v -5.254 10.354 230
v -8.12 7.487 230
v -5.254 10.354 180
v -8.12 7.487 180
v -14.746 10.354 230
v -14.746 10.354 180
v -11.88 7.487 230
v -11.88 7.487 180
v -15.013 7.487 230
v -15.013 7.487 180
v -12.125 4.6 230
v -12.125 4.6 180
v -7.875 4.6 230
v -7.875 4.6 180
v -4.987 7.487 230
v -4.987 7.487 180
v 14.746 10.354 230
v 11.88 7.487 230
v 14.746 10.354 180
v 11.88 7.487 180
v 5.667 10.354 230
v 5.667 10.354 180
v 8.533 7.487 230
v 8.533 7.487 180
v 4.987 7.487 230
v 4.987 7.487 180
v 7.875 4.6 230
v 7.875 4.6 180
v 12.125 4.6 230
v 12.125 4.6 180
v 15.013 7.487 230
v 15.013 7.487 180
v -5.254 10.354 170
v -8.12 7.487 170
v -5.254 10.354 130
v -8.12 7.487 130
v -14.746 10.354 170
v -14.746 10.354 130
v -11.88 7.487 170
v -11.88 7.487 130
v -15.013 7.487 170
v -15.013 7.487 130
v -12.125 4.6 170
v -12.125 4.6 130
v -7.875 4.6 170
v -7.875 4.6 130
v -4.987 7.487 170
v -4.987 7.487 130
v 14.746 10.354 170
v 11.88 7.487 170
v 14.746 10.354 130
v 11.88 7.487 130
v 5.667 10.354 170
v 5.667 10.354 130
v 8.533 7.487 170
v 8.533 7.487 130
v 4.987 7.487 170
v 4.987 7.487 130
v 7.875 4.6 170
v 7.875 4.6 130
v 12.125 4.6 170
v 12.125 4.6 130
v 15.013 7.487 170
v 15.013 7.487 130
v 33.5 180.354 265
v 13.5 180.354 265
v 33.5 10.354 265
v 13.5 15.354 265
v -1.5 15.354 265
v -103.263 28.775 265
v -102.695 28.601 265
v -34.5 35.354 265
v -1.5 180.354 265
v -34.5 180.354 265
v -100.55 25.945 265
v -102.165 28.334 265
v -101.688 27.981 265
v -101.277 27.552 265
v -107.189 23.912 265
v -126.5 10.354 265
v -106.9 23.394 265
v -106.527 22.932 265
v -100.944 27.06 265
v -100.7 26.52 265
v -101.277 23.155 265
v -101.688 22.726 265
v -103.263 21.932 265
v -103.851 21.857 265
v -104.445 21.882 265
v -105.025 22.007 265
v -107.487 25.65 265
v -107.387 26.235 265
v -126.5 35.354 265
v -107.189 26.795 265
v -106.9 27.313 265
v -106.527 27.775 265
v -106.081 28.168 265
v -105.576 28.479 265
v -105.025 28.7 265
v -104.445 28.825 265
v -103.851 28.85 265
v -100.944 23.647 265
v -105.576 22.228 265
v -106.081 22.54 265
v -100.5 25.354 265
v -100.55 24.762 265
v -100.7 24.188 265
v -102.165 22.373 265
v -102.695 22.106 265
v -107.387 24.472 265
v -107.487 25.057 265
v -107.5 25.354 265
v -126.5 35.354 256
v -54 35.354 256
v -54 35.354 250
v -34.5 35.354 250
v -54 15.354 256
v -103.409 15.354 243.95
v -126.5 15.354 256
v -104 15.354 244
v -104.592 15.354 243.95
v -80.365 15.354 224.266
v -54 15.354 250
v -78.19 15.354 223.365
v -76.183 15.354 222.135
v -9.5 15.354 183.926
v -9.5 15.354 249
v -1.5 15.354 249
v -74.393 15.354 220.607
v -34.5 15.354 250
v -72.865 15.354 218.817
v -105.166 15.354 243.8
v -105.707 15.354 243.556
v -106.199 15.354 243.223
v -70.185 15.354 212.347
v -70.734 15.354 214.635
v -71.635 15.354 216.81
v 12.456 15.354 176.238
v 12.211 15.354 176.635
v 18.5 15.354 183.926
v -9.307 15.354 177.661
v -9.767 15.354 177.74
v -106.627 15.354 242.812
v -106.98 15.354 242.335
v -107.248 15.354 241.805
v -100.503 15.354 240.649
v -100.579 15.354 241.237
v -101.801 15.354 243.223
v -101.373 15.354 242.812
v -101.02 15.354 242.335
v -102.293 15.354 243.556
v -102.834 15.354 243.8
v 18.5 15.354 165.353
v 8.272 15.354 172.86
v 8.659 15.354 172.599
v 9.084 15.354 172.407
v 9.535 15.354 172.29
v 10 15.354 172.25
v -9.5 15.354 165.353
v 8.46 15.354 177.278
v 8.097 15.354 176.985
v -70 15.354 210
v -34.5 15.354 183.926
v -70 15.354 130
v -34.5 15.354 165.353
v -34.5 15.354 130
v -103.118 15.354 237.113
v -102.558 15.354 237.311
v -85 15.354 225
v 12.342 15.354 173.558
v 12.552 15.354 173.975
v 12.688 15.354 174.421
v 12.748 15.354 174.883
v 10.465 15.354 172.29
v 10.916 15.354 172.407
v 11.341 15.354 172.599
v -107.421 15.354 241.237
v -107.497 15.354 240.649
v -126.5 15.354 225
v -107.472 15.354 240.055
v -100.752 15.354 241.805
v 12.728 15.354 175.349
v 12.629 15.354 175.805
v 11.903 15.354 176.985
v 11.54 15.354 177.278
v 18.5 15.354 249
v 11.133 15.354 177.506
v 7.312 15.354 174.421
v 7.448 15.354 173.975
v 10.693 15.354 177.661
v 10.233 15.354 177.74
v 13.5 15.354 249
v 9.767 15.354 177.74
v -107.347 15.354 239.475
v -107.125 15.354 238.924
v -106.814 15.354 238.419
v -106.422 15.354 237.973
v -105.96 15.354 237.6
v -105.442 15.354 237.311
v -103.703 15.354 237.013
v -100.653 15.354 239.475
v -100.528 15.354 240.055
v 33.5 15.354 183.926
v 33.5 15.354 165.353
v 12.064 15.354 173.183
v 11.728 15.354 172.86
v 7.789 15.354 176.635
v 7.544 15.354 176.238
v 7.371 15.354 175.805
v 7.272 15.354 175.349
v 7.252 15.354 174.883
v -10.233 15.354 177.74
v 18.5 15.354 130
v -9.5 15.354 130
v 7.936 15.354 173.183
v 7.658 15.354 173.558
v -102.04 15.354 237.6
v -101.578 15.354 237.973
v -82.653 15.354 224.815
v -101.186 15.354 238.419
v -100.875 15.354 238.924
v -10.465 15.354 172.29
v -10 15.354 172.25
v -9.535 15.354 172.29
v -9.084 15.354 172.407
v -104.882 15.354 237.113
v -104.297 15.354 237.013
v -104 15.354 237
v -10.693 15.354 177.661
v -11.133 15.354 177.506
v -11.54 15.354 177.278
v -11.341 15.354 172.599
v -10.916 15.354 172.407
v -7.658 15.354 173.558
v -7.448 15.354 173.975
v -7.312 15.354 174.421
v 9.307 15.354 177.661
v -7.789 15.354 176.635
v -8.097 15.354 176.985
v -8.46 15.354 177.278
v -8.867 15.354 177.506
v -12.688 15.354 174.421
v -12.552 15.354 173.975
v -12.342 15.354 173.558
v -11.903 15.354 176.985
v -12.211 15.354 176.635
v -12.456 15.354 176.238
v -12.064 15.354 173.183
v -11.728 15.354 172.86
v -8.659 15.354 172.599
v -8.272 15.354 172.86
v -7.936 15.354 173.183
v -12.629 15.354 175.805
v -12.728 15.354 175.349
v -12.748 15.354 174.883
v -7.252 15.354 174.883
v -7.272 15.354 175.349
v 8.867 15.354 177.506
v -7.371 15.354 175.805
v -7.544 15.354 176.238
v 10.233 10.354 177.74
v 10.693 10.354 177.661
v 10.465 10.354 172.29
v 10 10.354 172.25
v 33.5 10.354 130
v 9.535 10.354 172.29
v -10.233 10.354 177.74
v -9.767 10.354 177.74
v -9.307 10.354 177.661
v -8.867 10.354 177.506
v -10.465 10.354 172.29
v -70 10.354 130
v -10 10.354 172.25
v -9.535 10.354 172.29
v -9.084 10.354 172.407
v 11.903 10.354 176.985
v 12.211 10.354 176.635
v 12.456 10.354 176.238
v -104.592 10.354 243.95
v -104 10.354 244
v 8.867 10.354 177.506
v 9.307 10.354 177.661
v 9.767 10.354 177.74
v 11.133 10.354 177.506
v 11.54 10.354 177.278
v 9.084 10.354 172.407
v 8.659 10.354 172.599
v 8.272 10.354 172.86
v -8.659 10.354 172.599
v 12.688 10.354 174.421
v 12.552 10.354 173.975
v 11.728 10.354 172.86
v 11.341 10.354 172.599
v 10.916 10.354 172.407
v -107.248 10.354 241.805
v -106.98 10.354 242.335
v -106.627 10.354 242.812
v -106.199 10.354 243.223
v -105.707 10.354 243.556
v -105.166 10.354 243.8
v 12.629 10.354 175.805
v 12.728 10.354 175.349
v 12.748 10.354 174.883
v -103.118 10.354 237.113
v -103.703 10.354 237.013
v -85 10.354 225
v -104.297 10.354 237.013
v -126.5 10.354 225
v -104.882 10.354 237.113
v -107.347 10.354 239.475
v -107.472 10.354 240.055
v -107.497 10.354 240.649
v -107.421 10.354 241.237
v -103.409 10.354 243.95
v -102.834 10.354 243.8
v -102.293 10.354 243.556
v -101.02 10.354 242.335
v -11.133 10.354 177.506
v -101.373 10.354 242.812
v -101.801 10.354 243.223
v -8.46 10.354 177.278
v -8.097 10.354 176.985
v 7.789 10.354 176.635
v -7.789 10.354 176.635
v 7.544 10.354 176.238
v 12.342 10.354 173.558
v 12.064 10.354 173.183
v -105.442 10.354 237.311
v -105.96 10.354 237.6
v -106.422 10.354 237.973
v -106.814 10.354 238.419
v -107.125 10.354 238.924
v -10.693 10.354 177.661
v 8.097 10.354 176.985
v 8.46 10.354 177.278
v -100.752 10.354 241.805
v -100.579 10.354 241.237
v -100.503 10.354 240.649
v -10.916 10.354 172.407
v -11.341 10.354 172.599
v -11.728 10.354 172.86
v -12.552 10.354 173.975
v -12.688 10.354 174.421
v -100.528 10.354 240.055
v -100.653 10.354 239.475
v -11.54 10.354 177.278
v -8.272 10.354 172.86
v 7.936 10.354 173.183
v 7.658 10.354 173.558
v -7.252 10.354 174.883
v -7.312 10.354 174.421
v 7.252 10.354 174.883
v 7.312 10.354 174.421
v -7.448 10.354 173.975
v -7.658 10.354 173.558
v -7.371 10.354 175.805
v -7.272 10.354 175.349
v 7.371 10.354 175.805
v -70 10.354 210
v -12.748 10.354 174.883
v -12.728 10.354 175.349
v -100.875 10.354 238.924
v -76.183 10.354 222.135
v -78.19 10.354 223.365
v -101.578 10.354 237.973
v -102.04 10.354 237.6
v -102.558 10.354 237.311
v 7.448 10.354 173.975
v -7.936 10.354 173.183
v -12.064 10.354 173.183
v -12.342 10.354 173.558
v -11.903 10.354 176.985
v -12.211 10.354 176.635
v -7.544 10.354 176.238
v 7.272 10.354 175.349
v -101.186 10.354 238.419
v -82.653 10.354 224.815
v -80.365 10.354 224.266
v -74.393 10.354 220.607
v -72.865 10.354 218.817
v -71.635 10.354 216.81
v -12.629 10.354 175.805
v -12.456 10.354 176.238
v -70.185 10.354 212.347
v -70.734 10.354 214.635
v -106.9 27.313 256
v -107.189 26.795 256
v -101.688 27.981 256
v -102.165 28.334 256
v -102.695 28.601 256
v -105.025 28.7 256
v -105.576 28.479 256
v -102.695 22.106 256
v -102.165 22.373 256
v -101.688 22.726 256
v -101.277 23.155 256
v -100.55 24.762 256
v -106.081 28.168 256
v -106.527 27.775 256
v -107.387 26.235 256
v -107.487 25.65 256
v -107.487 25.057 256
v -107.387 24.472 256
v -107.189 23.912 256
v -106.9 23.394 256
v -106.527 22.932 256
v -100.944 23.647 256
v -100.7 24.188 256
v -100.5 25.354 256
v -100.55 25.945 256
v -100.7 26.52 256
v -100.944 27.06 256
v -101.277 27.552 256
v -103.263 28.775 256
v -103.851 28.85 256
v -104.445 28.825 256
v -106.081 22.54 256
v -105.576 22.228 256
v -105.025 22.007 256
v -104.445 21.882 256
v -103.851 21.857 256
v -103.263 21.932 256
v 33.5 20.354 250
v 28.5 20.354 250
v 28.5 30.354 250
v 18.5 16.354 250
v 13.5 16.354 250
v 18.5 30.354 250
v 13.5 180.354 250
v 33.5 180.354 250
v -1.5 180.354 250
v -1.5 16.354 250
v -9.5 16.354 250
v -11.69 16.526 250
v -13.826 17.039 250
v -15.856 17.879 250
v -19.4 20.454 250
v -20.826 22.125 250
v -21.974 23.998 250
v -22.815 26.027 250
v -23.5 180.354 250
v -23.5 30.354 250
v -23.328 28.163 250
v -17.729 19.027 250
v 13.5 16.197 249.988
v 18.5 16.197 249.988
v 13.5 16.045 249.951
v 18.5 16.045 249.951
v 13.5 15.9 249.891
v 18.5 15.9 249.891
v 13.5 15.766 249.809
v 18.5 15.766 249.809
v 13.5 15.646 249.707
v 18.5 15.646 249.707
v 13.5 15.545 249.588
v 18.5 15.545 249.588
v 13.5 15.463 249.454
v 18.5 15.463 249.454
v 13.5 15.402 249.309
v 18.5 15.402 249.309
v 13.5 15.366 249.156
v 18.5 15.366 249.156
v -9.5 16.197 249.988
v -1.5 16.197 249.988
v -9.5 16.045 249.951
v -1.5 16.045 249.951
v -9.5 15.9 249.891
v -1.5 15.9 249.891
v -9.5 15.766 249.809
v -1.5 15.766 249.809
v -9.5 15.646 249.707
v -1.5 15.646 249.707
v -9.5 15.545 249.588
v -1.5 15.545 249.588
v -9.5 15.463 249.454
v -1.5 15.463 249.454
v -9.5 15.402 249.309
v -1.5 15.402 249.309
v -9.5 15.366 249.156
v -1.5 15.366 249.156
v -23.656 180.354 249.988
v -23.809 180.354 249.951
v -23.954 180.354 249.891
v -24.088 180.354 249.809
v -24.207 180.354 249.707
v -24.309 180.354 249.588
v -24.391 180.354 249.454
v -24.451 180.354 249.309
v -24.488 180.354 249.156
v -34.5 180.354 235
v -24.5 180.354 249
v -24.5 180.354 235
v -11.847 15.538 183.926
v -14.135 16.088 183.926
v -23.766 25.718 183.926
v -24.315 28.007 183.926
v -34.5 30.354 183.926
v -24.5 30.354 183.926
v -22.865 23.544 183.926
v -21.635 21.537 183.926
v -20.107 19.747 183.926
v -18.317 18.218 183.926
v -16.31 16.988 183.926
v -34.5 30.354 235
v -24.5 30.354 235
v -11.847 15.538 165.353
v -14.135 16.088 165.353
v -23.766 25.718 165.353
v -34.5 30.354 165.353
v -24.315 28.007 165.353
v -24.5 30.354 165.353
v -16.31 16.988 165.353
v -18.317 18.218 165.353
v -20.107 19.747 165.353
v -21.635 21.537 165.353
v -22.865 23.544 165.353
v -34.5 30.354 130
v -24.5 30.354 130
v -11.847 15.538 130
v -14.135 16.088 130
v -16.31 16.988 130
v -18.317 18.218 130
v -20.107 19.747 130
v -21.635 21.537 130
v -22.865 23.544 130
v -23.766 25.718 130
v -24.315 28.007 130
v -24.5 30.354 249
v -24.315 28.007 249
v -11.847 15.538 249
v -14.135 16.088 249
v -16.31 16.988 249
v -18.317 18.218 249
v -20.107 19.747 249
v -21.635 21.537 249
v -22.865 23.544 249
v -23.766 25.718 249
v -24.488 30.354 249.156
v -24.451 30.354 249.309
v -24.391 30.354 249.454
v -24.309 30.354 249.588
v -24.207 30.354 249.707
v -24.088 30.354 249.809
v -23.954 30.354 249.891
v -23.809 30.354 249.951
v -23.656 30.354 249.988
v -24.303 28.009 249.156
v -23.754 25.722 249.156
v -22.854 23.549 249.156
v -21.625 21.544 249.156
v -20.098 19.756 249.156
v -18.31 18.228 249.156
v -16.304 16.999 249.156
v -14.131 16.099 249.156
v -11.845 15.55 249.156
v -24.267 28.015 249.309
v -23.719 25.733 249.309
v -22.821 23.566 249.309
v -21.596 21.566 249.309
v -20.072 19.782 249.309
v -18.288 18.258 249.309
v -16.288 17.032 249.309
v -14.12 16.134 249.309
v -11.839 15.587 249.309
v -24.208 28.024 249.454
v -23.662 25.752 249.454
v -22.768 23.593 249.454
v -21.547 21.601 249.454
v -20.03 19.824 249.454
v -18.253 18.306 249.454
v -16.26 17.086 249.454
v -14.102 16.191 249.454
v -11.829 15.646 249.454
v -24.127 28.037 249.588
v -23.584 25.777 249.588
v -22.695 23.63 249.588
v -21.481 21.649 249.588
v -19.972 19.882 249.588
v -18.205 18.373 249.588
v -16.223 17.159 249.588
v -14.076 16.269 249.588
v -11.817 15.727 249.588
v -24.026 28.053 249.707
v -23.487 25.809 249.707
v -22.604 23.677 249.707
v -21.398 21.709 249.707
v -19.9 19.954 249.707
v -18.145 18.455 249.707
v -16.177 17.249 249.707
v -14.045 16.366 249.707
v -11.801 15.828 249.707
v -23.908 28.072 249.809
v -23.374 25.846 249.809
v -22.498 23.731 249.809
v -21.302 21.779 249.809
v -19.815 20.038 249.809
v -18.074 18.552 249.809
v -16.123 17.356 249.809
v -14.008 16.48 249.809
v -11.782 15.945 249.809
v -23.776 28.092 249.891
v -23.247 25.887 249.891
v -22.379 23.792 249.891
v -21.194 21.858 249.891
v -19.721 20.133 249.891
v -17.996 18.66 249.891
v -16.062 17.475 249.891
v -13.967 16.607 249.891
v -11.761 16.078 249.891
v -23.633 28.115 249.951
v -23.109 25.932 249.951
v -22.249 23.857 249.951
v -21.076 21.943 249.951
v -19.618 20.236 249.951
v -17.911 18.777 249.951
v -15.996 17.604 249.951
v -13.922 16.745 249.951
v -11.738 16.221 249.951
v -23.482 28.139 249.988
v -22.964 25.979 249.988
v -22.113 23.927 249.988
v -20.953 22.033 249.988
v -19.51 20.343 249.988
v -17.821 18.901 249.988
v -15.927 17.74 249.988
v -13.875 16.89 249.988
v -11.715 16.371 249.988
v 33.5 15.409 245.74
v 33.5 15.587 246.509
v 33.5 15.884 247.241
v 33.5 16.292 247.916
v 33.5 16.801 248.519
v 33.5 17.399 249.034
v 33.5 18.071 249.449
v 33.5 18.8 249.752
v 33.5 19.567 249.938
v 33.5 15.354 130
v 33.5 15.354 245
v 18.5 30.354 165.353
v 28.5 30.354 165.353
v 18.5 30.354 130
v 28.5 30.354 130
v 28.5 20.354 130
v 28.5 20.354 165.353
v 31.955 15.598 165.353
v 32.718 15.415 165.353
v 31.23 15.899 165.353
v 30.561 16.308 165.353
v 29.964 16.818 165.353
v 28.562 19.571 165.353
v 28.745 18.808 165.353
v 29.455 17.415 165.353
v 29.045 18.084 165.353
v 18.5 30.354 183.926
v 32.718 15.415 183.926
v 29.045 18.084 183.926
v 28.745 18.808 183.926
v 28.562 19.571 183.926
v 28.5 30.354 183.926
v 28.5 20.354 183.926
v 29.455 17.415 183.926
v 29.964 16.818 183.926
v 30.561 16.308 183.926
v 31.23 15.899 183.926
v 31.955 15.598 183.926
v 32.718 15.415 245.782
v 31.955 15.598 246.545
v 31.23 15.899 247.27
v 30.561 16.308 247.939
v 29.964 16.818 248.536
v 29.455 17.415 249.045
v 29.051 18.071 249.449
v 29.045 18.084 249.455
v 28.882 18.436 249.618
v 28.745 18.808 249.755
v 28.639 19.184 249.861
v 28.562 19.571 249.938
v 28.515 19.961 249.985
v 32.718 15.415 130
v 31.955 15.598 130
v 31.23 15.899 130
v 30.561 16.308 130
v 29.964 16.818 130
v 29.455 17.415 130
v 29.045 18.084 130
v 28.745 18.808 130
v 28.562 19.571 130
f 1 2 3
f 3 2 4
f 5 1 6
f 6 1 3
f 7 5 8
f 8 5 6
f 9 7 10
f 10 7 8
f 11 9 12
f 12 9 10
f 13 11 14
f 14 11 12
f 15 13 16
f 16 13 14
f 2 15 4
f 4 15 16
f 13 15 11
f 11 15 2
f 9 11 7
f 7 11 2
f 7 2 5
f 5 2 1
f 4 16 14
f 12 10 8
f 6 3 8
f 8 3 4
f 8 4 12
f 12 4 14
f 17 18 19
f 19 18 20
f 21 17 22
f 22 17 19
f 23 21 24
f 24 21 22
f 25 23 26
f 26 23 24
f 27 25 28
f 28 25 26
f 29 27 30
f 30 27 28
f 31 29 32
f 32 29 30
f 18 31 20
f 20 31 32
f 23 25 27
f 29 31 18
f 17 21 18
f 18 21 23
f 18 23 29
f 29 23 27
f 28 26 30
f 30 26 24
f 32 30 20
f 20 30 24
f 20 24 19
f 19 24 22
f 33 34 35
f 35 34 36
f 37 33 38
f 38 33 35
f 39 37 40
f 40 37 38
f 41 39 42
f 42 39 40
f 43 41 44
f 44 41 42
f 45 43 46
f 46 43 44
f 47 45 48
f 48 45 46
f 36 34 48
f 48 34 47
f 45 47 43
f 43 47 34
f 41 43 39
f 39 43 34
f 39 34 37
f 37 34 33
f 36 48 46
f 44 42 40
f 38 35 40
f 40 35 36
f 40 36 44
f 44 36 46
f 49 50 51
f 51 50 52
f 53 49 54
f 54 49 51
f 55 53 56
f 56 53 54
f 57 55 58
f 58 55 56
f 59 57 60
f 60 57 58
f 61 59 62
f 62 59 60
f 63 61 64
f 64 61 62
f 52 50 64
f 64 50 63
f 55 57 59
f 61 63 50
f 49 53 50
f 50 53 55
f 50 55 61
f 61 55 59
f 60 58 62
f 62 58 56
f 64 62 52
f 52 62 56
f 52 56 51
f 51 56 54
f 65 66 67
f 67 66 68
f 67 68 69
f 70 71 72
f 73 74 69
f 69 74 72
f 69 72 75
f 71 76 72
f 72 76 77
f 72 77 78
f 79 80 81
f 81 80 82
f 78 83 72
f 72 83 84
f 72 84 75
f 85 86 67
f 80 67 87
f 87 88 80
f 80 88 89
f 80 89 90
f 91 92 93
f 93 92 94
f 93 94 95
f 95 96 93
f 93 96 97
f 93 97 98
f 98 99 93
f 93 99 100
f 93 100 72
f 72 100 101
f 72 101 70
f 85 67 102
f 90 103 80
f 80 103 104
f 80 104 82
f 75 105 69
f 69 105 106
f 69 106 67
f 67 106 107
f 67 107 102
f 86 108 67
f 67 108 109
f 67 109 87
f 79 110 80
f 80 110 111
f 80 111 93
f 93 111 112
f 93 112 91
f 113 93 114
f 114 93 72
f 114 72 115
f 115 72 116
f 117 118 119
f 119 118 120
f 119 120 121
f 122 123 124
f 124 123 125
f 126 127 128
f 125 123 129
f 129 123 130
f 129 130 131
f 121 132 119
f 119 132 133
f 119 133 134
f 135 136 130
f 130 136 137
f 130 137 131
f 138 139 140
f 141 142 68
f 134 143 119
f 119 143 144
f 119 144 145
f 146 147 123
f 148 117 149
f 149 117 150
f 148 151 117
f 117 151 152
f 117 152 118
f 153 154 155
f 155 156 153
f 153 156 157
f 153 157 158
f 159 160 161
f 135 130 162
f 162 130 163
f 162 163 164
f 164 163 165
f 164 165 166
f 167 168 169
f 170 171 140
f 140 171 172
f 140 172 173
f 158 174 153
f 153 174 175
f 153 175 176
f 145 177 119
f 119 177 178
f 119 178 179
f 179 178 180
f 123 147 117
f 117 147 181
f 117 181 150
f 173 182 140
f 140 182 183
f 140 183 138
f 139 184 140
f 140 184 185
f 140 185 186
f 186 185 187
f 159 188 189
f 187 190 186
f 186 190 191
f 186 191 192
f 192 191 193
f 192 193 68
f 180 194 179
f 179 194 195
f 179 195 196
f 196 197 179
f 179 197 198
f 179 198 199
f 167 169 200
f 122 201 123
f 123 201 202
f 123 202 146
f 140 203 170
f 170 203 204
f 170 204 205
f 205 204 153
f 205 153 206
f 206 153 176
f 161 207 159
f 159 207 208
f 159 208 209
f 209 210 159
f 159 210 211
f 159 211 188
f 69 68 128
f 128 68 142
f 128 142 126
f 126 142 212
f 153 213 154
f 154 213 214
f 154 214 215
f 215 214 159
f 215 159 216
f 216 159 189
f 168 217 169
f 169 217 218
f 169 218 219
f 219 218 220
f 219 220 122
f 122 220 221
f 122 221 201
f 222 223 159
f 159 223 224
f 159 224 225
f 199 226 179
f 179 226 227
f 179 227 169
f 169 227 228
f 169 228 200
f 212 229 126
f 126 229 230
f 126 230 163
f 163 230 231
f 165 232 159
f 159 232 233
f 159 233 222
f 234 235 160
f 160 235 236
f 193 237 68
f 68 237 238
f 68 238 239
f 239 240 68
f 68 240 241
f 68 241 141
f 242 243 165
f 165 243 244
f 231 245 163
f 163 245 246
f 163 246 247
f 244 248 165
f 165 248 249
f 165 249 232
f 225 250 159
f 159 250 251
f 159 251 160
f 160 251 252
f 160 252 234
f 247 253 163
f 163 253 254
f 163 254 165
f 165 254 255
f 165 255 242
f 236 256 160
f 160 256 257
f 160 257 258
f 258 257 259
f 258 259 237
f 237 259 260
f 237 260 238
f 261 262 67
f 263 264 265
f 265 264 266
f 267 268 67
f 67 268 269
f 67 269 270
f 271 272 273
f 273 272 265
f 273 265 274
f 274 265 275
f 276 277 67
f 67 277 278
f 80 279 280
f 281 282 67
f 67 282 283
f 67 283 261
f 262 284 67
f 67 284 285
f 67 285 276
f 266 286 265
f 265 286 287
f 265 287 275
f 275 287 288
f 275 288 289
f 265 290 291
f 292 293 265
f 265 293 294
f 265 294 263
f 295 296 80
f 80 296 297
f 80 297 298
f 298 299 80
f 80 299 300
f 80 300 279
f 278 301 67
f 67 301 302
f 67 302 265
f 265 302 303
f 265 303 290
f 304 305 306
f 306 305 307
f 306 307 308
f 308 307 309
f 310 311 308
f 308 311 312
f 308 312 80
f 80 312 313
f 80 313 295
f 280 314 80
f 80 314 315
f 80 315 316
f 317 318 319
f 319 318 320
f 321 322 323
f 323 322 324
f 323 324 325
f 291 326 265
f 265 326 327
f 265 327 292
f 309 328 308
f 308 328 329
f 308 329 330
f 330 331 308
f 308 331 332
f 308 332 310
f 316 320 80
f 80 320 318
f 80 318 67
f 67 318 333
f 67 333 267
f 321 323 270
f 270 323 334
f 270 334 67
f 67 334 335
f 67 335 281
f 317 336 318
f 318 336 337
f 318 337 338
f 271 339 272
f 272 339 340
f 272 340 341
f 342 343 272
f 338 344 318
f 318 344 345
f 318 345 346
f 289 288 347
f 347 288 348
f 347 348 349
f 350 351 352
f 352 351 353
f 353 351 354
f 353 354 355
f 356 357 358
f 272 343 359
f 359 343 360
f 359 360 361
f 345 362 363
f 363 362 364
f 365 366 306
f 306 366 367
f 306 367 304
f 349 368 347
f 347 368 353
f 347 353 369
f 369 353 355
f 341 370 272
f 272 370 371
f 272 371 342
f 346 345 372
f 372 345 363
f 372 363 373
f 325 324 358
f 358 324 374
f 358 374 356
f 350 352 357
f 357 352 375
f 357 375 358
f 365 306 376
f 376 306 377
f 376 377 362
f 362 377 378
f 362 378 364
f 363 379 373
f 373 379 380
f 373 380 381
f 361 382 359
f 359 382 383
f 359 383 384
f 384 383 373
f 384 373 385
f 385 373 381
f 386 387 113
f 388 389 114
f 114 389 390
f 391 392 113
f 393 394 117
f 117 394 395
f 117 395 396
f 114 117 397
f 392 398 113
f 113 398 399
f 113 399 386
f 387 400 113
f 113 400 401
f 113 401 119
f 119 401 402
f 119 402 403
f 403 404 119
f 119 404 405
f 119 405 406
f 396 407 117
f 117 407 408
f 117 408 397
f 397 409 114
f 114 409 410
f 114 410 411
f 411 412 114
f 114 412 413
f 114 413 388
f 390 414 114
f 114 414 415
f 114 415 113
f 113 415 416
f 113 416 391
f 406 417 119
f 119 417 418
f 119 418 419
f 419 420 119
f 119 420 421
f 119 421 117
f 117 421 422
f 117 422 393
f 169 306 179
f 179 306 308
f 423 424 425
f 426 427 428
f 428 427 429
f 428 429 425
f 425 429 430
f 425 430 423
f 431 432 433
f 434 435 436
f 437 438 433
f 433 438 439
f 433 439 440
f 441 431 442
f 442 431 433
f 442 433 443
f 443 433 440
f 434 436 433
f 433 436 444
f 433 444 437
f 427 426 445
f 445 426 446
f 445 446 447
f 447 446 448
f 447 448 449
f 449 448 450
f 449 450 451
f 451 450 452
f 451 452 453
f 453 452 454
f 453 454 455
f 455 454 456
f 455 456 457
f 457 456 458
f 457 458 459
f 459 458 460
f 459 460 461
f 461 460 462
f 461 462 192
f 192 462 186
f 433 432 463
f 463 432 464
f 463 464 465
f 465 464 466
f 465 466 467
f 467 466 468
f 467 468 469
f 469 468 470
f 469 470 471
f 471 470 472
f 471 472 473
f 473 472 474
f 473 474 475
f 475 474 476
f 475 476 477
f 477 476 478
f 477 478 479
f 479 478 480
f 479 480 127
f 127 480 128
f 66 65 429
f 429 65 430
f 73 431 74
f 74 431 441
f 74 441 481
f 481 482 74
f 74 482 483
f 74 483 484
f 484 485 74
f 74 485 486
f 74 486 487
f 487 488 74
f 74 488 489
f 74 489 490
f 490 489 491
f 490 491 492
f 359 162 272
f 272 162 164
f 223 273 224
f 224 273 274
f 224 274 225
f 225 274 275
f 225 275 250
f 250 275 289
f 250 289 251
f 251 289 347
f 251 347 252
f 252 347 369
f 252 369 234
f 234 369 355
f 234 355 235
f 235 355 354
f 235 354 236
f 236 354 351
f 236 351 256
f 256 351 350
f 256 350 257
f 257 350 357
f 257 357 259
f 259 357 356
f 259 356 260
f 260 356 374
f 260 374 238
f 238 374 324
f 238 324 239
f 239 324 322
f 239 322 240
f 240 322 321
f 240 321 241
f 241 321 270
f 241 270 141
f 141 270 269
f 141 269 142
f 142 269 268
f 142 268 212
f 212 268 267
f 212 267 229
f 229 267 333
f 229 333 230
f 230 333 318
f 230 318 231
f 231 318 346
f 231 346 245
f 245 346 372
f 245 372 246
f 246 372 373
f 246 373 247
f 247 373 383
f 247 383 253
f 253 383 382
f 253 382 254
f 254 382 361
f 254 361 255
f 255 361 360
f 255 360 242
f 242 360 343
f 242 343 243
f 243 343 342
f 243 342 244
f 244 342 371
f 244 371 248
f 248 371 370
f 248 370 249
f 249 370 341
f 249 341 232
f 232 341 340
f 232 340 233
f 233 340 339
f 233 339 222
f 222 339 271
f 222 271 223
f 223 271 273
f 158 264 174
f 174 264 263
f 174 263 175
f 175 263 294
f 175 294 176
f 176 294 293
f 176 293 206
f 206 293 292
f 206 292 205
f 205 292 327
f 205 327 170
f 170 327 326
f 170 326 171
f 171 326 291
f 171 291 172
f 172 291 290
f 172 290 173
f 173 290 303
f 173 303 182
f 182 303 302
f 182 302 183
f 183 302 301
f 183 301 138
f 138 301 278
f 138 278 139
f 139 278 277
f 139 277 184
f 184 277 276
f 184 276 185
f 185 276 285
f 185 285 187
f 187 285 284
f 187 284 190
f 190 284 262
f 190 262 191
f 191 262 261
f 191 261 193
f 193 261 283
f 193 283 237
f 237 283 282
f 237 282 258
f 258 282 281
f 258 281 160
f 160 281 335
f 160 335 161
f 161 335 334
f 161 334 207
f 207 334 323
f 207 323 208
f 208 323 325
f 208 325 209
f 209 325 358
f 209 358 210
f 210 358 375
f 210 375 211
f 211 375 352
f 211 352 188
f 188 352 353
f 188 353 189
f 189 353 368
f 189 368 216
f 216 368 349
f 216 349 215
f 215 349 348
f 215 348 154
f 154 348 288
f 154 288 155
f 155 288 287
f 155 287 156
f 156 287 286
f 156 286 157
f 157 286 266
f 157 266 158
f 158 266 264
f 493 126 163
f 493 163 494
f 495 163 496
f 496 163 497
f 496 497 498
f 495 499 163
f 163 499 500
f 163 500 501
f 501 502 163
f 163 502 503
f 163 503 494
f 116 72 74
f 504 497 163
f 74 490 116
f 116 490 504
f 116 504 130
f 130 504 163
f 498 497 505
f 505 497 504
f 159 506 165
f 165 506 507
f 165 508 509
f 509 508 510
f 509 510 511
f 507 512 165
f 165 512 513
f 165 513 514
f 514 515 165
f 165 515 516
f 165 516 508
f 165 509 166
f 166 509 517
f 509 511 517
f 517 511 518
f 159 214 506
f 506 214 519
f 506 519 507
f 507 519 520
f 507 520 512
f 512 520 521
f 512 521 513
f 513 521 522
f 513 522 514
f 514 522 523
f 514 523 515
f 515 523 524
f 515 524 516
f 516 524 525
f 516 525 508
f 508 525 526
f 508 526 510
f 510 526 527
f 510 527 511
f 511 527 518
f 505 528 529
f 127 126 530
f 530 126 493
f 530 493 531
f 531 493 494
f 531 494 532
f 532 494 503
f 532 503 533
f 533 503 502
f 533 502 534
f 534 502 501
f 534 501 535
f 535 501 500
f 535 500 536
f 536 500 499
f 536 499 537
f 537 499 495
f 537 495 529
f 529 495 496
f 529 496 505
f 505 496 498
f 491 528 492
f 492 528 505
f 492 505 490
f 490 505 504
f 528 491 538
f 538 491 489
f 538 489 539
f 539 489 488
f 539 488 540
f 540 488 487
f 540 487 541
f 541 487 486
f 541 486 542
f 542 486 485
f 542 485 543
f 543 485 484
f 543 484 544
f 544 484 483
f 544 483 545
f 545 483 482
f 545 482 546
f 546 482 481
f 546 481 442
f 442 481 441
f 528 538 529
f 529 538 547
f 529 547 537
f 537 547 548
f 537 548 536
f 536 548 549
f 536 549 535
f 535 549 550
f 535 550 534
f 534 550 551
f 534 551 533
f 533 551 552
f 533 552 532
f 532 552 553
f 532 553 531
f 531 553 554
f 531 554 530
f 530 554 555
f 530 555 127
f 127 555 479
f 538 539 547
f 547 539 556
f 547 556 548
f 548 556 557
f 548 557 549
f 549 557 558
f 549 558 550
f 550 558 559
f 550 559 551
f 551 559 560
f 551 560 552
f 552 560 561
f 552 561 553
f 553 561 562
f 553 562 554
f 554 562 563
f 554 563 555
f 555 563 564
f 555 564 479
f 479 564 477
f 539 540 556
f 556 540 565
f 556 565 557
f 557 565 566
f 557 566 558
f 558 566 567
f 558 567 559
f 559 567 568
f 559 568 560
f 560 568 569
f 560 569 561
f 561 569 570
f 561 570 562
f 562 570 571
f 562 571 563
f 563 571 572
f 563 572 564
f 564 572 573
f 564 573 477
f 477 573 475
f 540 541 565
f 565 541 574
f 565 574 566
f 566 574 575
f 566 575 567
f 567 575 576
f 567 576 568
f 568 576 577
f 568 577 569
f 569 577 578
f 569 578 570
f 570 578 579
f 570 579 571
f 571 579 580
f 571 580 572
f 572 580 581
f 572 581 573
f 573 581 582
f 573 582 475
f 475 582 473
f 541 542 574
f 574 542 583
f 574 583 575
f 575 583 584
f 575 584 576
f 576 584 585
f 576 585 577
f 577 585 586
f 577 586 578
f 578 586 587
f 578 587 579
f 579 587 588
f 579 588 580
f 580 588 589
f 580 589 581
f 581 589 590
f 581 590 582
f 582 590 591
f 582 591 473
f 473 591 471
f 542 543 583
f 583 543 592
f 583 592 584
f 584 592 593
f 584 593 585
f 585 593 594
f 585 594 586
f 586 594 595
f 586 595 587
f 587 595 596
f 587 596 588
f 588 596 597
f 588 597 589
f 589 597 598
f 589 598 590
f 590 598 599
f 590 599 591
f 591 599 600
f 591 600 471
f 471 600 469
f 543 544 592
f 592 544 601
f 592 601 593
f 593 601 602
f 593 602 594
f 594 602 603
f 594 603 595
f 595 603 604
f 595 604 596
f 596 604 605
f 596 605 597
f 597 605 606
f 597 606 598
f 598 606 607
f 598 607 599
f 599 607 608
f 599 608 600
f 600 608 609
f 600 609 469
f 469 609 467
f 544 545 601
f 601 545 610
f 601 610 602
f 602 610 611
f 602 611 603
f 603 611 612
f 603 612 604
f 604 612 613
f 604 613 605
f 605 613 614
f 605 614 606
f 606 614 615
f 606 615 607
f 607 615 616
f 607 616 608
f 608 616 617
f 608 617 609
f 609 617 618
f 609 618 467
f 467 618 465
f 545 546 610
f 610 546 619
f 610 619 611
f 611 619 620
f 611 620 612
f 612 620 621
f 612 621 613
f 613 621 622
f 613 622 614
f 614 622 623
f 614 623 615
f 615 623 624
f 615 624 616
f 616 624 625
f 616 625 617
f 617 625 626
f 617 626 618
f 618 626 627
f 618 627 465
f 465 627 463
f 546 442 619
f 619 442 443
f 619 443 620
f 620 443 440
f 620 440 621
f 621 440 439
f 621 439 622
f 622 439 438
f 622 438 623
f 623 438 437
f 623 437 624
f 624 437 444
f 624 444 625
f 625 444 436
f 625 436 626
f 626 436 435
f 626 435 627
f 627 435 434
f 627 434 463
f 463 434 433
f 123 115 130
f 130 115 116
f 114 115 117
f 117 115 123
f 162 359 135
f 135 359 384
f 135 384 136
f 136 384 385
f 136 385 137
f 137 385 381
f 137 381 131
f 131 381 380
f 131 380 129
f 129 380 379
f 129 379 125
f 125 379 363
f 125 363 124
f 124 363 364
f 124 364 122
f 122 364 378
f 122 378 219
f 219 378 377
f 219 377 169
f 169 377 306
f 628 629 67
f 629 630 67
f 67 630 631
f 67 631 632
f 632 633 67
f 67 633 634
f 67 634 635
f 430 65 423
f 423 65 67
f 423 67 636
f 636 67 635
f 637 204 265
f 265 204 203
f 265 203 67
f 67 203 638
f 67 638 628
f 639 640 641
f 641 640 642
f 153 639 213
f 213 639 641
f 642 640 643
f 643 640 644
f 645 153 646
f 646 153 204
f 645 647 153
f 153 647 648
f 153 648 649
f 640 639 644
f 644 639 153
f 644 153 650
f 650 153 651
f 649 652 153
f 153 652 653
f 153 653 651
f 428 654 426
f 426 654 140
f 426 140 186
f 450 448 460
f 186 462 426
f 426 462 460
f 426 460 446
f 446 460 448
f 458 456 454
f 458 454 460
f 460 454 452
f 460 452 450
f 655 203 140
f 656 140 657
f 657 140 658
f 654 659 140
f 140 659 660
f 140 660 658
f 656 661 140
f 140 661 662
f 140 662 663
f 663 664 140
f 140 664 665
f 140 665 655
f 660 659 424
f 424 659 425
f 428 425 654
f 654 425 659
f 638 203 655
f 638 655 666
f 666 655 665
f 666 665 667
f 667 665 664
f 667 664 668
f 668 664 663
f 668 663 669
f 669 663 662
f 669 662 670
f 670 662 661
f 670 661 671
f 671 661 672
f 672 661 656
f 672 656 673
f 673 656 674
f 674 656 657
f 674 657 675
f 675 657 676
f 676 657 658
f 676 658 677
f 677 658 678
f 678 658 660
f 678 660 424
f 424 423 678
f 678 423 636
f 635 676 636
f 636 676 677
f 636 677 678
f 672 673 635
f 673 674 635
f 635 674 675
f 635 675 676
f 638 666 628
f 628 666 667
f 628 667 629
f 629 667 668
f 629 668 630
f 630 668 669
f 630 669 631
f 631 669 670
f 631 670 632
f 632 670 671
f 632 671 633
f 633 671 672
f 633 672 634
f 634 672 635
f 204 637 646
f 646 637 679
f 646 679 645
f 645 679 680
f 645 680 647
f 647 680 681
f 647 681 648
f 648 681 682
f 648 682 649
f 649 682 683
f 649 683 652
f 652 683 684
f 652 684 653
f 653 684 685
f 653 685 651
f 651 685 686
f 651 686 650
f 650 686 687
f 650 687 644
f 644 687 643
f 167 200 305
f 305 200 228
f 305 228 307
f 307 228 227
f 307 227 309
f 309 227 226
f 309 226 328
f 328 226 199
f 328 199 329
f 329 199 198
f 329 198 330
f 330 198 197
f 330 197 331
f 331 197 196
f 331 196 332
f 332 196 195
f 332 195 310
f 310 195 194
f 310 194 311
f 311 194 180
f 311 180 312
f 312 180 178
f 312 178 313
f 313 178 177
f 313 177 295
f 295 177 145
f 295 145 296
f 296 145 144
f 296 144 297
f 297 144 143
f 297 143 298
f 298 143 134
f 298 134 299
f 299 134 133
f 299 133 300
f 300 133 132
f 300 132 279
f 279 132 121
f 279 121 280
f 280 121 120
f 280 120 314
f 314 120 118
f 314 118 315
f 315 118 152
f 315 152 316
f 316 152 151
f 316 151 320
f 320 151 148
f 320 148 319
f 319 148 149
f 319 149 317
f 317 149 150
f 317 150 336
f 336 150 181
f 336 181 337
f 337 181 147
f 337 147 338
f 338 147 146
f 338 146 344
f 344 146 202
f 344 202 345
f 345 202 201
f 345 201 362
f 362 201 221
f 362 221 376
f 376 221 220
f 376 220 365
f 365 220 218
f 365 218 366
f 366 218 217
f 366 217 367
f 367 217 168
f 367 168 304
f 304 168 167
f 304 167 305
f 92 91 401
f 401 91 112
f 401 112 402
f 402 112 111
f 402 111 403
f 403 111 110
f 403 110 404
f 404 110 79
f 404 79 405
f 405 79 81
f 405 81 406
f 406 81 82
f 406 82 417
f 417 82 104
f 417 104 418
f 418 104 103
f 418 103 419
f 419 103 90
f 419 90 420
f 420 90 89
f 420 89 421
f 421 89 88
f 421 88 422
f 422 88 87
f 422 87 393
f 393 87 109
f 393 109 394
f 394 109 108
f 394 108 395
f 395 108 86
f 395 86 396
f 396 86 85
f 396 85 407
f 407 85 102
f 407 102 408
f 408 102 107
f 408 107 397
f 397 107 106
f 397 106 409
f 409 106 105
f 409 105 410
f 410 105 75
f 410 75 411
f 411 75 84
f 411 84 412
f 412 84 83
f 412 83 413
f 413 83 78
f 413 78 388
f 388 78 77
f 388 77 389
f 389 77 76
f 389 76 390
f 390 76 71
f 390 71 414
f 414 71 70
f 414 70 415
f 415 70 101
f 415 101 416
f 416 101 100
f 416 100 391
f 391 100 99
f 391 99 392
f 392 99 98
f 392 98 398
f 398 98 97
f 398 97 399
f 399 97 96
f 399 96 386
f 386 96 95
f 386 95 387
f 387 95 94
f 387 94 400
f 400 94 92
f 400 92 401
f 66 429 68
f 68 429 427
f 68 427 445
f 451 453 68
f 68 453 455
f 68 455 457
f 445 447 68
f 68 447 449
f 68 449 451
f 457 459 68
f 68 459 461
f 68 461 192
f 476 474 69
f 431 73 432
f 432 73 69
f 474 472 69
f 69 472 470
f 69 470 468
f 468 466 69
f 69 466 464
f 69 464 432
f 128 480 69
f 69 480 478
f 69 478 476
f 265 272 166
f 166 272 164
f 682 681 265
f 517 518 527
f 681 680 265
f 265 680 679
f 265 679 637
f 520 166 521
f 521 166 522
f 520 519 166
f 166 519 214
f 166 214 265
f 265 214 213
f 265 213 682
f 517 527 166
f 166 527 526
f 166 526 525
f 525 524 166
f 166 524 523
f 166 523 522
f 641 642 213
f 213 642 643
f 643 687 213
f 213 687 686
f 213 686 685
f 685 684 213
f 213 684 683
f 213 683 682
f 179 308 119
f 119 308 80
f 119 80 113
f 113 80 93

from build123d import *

# Parameters (mm, degrees)
BOSS_EXTRUDE1_DEPTH      = 250
BOSS_EXTRUDE2_DEPTH      = 50
BOSS_EXTRUDE2_2_DEPTH    = 50
LPATTERN1_COUNT          = 4
LPATTERN1_PITCH          = 60
SKETCH2_R                = 2.75
CUT_EXTRUDE1_DEPTH       = 251.864711302
UPPER_ACRYLIC_SUPP_W     = 20
UPPER_ACRYLIC_SUPP_H     = 250
BOSS_EXTRUDE3_DEPTH      = 5
UPPER_ACRYLIC_SUPP_3_W   = 10
UPPER_ACRYLIC_SUPP_3_H   = 66.073604859
UPPER_ACRYLIC_SUPP_3_H_2 = 41.475217291
UPPER_ACRYLIC_SUPP_3_H_3 = 42.557179481
UPPER_ACRYLIC_SUPP_3_H_4 = 45.558340935
BOSS_EXTRUDE4_DEPTH      = 15
FILLET1_R                = 15
SKETCH4_W                = 60
SKETCH4_H                = 15
BOSS_EXTRUDE5_DEPTH      = 5
SKETCH4_3_W              = 60
SKETCH4_3_H              = 15
BOSS_EXTRUDE6_DEPTH      = 60
SKETCH5_W                = 10
SKETCH5_H                = 45
BOSS_EXTRUDE7_DEPTH      = 15
BOSS_EXTRUDE8_START      = 250
SKETCH5_3_W              = 10
SKETCH5_3_H              = 45
BOSS_EXTRUDE8_DEPTH      = 15
FILLET2_R                = 1
SKETCH6_W                = 6
SKETCH6_H                = 60
CUT_EXTRUDE2_DEPTH       = 6
BOSS_EXTRUDE9_DEPTH      = 30
SKETCH8_W                = 333.602701612
SKETCH8_H                = 59.031331047
CUT_EXTRUDE3_DEPTH       = 150
SKETCH9_W                = 6
SKETCH9_H                = 20
CLOTH_ESCAPE_GAP_DEPTH   = 20
SKETCH11_W               = 9
SKETCH11_H               = 20
BOSS_EXTRUDE11_DEPTH     = 100
CUT_EXTRUDE4_DEPTH       = 68
SKETCH13_W               = 40
SKETCH13_H               = 5
BOSS_EXTRUDE13_DEPTH     = 100
CUT_EXTRUDE5_DEPTH       = 100
FILLET3_R                = 15
BOSS_EXTRUDE14_START     = -5
BOSS_EXTRUDE14_DEPTH     = 25
CUT_EXTRUDE6_DEPTH       = 30
CUT_EXTRUDE6_DEPTH_BACK  = 10
SKETCH16_5_W             = 8.5
SKETCH16_5_H             = 41.475217291
SKETCH16_5_H_2           = 42.557179481
SKETCH16_5_W_2           = 1.5
SKETCH16_5_H_3           = 42.177819043
SKETCH16_5_H_4           = 20.831100018
SKETCH16_5_H_5           = 17.311395043
SKETCH16_5_H_6           = 18.573684265
SKETCH16_5_H_7           = 65.073604859
SKETCH16_6_W             = 8.5
SKETCH16_6_H             = 41.475217291
SKETCH16_6_H_2           = 42.557179481
SKETCH16_6_W_2           = 1.5
SKETCH16_6_H_3           = 42.177819043
SKETCH16_6_H_4           = 20.831100018
SKETCH16_6_H_5           = 17.311395043
SKETCH16_6_H_6           = 18.573684265
SKETCH16_6_H_7           = 65.073604859
BOSS_EXTRUDE15_DEPTH     = 5
BOSS_EXTRUDE16_DEPTH     = 20
SKETCH16_8_W             = 8.5
SKETCH16_8_H             = 41.475217291
SKETCH16_8_H_2           = 42.557179481
SKETCH16_8_W_2           = 1.5
SKETCH16_8_H_3           = 42.177819043
SKETCH16_8_H_4           = 65.073604859
BOSS_EXTRUDE17_DEPTH     = 15
BOSS_EXTRUDE18_START     = -5
BOSS_EXTRUDE18_DEPTH     = 25
FILLET4_R                = 5
BOSS_EXTRUDE21_START     = 145
BOSS_EXTRUDE21_DEPTH     = 170
SKETCH19_R               = 3.5
CUT_EXTRUDE7_DEPTH       = 10
CUT_EXTRUDE8_DEPTH       = 355
CUT_EXTRUDE8_DEPTH_BACK  = 10
SKETCH20_R               = 3.5
SKETCH21_W               = 15
SKETCH21_H               = 197.501027769
CUT_EXTRUDE9_DEPTH       = 340
SKETCH22_W               = 160
SKETCH22_H               = 10
SKETCH22_H_2             = 135
CUT_EXTRUDE11_DEPTH      = 217


with BuildPart() as part:
    # profile → Boss-Extrude1 (new body)
    with BuildSketch(Plane.XY):
        Polygon((-14.746446609, 10.353553391), (-5.253553391, 10.353553391), (5.667330529, 10.353553391), (14.746446609, 10.353553391), (20, 10.353553391), (20, 15.353553391), (-20, 15.353553391), (-20, 10.353553391), align=None)
    extrude(amount=BOSS_EXTRUDE1_DEPTH)

    # Sketch2 → Cut-Extrude1 (cut, through all)
    with BuildSketch(Plane.XZ.offset(-10.353553391)):
        with Locations(Location((-10, 175, 0), (0, 0, 270))):
            Circle(SKETCH2_R)
        with Locations(Location((10, 175, 0), (0, 0, 270))):
            Circle(SKETCH2_R)
        with Locations(Location((-10, 115, 0), (0, 0, 270))):
            Circle(SKETCH2_R)
        with Locations(Location((10, 115, 0), (0, 0, 270))):
            Circle(SKETCH2_R)
        with Locations(Location((-10, 55, 0), (0, 0, 270))):
            Circle(SKETCH2_R)
        with Locations(Location((10, 55, 0), (0, 0, 270))):
            Circle(SKETCH2_R)
    extrude(amount=-CUT_EXTRUDE1_DEPTH, mode=Mode.SUBTRACT)

    # upper_acrylic_supp → Boss-Extrude3 (add)
    with BuildSketch(Plane(origin=(0, 15.353553391, 0), x_dir=(1, 0, 0), z_dir=(0, 1, 0))):
        with Locations((-30, -125)):
            Rectangle(UPPER_ACRYLIC_SUPP_W, UPPER_ACRYLIC_SUPP_H)
    extrude(amount=-BOSS_EXTRUDE3_DEPTH)

    # upper_acrylic_supp<3> → Boss-Extrude4 (add)
    with BuildSketch(Plane(origin=(0, 15.353553391, 0), x_dir=(1, 0, 0), z_dir=(0, 1, 0))):
        with Locations((-29.5, -216.963197571)):
            Rectangle(UPPER_ACRYLIC_SUPP_3_W, UPPER_ACRYLIC_SUPP_3_H)
        with Locations((-29.5, -144.615102231)):
            Rectangle(UPPER_ACRYLIC_SUPP_3_W, UPPER_ACRYLIC_SUPP_3_H_2)
        with Locations((-29.5, -85.287508801)):
            Rectangle(UPPER_ACRYLIC_SUPP_3_W, UPPER_ACRYLIC_SUPP_3_H_3)
        with Locations((-29.5, -22.779170468)):
            Rectangle(UPPER_ACRYLIC_SUPP_3_W, UPPER_ACRYLIC_SUPP_3_H_4)
    extrude(amount=BOSS_EXTRUDE4_DEPTH)

    # Fillet1
    fillet1_edges = [part.edges().sort_by_distance(p)[0] for p in [
        (-24.5, 15.353553391, 22.779170467),
        (-24.5, 15.353553391, 85.287508801),
        (-24.5, 15.353553391, 144.615102231),
        (-24.5, 15.353553391, 216.963197571),
    ]]
    fillet(fillet1_edges, radius=FILLET1_R - 0.0001)  # a hair under: the kernel refuses the full size



with BuildPart() as body_2:
    # Sketch1<3> → Boss-Extrude2 (new body)
    with BuildSketch(Plane.XY):
        Polygon((-7.253553391, 8.353553391), (-8.119669914, 7.487436867), (-5.5, 7.487436867), (-4.987436867, 7.487436867), (-5.5, 6.974873734), (-7.874873734, 4.6), (-12.125126266, 4.6), (-14.5, 6.974873734), (-15.012563133, 7.487436867), (-14.5, 7.487436867), (-11.880330086, 7.487436867), (-12.746446609, 8.353553391), (-14.746446609, 10.353553391), (-5.253553391, 10.353553391), align=None)
    boss_extrude2 = extrude(amount=BOSS_EXTRUDE2_DEPTH)


with BuildPart() as body_3:
    # Sketch1<3> → Boss-Extrude2 2 (new body)
    with BuildSketch(Plane.XY):
        Polygon((12.746446609, 8.353553391), (11.880330086, 7.487436867), (14.5, 7.487436867), (15.012563133, 7.487436867), (14.5, 6.974873734), (12.125126266, 4.6), (7.874873734, 4.6), (5.5, 6.974873734), (4.987436867, 7.487436867), (5.5, 7.487436867), (8.533447053, 7.487436867), (7.667330529, 8.353553391), (5.667330529, 10.353553391), (14.746446609, 10.353553391), align=None)
    boss_extrude2_2 = extrude(amount=BOSS_EXTRUDE2_2_DEPTH)


with BuildPart() as lpattern1_1:
    # LPattern1: pattern copy
    add(boss_extrude2.moved(Location(Vector(0, 0, 1) * (1 * LPATTERN1_PITCH))))


with BuildPart() as lpattern1_2:
    # LPattern1: pattern copy
    add(boss_extrude2.moved(Location(Vector(0, 0, 1) * (2 * LPATTERN1_PITCH))))


with BuildPart() as lpattern1_3:
    # LPattern1: pattern copy
    add(boss_extrude2.moved(Location(Vector(0, 0, 1) * (3 * LPATTERN1_PITCH))))


with BuildPart() as lpattern1_4:
    # LPattern1: pattern copy
    add(boss_extrude2_2.moved(Location(Vector(0, 0, 1) * (1 * LPATTERN1_PITCH))))


with BuildPart() as lpattern1_5:
    # LPattern1: pattern copy
    add(boss_extrude2_2.moved(Location(Vector(0, 0, 1) * (2 * LPATTERN1_PITCH))))


with BuildPart() as lpattern1_6:
    # LPattern1: pattern copy
    add(boss_extrude2_2.moved(Location(Vector(0, 0, 1) * (3 * LPATTERN1_PITCH))))


with BuildPart() as part_1:
    add(part.part)

    add(body_2.part)  # Boss-Extrude5 merges body 2

    add(body_3.part)  # Boss-Extrude5 merges body 3
    # Sketch4 → Boss-Extrude5 (add, symmetric)
    with BuildSketch(Plane(origin=(0, 15.353553391, 0), x_dir=(1, 0, 0), z_dir=(0, 1, 0))):
        with Locations((-10, -257.5)):
            Rectangle(SKETCH4_W, SKETCH4_H)
        with Locations((-10, 7.5)):
            Rectangle(SKETCH4_W, SKETCH4_H)
    extrude(amount=BOSS_EXTRUDE5_DEPTH, both=True)

    # Sketch4<3> → Boss-Extrude6 (add)
    with BuildSketch(Plane(origin=(0, 15.353553391, 0), x_dir=(1, 0, 0), z_dir=(0, 1, 0))):
        with Locations((-10, -257.5)):
            Rectangle(SKETCH4_3_W, SKETCH4_3_H)
        with Locations((-10, 7.5)):
            Rectangle(SKETCH4_3_W, SKETCH4_3_H)
    extrude(amount=BOSS_EXTRUDE6_DEPTH)

    # Sketch5 → Boss-Extrude7 (add)
    with BuildSketch(Plane(origin=(0, 0, 250), x_dir=(-1, 0, 0), z_dir=(0, 0, -1))):
        with Locations((29.5, 52.853553391)):
            Rectangle(SKETCH5_W, SKETCH5_H)
    extrude(amount=BOSS_EXTRUDE7_DEPTH)

    # Sketch5<3> → Boss-Extrude8 (add)
    with BuildSketch(Plane(origin=(0, 0, 250), x_dir=(-1, 0, 0), z_dir=(0, 0, -1)).offset(BOSS_EXTRUDE8_START)):
        with Locations((29.5, 52.853553391)):
            Rectangle(SKETCH5_3_W, SKETCH5_3_H)
    extrude(amount=-BOSS_EXTRUDE8_DEPTH)

    # Fillet2
    fillet2_edges = [part_1.edges().sort_by_distance(p)[0] for p in [
        (-24.5, 52.853503391, 250),
        (-24.5, 52.853503391, 0),
        (5.24995, 15.353553391, 250),
        (-20.106631007, 19.746922384, 250),
        (-20.106631007, 19.746922384, 0),
        (5.24995, 15.353553391, 0),
    ]]
    fillet(fillet2_edges, radius=FILLET2_R)

    # Sketch6 → Cut-Extrude2 (cut)
    with BuildSketch(Plane.ZY.offset(40)):
        with Locations((253, 45.353553391)):
            Rectangle(SKETCH6_W, SKETCH6_H)
        with Locations((-3, 45.353553391)):
            Rectangle(SKETCH6_W, SKETCH6_H)
    extrude(amount=-CUT_EXTRUDE2_DEPTH, mode=Mode.SUBTRACT)

    # Sketch7 → Boss-Extrude9 (add)
    with BuildSketch(Plane.ZY.offset(40)):
        Polygon((265, 75.353553391), (256, 75.353553391), (256, 15.353553391), (-6, 15.353553391), (-6, 75.353553391), (-15, 75.353553391), (-15, 10.353553391), (265, 10.353553391), align=None)
    extrude(amount=BOSS_EXTRUDE9_DEPTH)

    # Sketch8 → Cut-Extrude3 (cut)
    with BuildSketch(Plane.ZY.offset(70)):
        with Locations((122.426839416, 64.869218915)):
            Rectangle(SKETCH8_W, SKETCH8_H)
    extrude(amount=-CUT_EXTRUDE3_DEPTH, mode=Mode.SUBTRACT)

    # Sketch9 → cloth_escape_gap (add)
    with BuildSketch(Plane.ZY.offset(34)):
        with Locations((253, 25.353553391)):
            Rectangle(SKETCH9_W, SKETCH9_H)
        with Locations((-3, 25.353553391)):
            Rectangle(SKETCH9_W, SKETCH9_H)
    extrude(amount=CLOTH_ESCAPE_GAP_DEPTH)

    # Sketch11 → Boss-Extrude11 (add)
    with BuildSketch(Plane.ZY.offset(70)):
        with Locations((-10.5, 25.353553391)):
            Rectangle(SKETCH11_W, SKETCH11_H)
        with Locations((260.5, 25.353553391)):
            Rectangle(SKETCH11_W, SKETCH11_H)
    extrude(amount=BOSS_EXTRUDE11_DEPTH)

    # Sketch12 → Cut-Extrude4 (cut)
    with BuildSketch(Plane.XZ.offset(-10.353553391)):
        Polygon((-170, 265), (-70, 265), (-170, 260.5), align=None)
        Polygon((-70, -15), (-170, -10.5), (-170, -15), align=None)
    extrude(amount=-CUT_EXTRUDE4_DEPTH, mode=Mode.SUBTRACT)

    # Sketch13 → Boss-Extrude13 (add)
    with BuildSketch(Plane.ZY.offset(70)):
        with Locations((5, 12.853553391)):
            Rectangle(SKETCH13_W, SKETCH13_H)
        with Locations((245, 12.853553391)):
            Rectangle(SKETCH13_W, SKETCH13_H)
    extrude(amount=BOSS_EXTRUDE13_DEPTH)

    # Sketch14 → Cut-Extrude5 (cut)
    with BuildSketch(Plane(origin=(0, 15.353553391, 0), x_dir=(1, 0, 0), z_dir=(0, 1, 0))):
        Polygon((-70, -265), (-170, -260.5), (-170, -265), align=None)
        Polygon((-170, 15), (-170, 10.5), (-70, 15), align=None)
    extrude(amount=-CUT_EXTRUDE5_DEPTH, mode=Mode.SUBTRACT)

    # Fillet3
    fillet3_edges = [part_1.edges().sort_by_distance(p)[0] for p in [
        (-70, 12.853553391, 25),
        (-70, 12.853553391, 225),
    ]]
    fillet(fillet3_edges, radius=FILLET3_R)

    # Sketch16 → Boss-Extrude14 (add)
    with BuildSketch(Plane(origin=(0, 15.353553391, 0), x_dir=(1, 0, 0), z_dir=(0, 1, 0)).offset(BOSS_EXTRUDE14_START)):
        Polygon((28.5, 0), (33.5, 0), (33.5, 15), (18.5, 15), (18.5, 0), align=None)
        Polygon((18.5, -250), (18.5, -265), (33.5, -265), (33.5, -250), (28.5, -250), align=None)
    extrude(amount=BOSS_EXTRUDE14_DEPTH)

    # Sketch16<5> → Cut-Extrude6 (cut, two sides: drawn at the far end of the back side and taken through both)
    with BuildSketch(Plane(origin=(0, 15.353553391, 0), x_dir=(1, 0, 0), z_dir=(0, 1, 0)).offset(-CUT_EXTRUDE6_DEPTH_BACK)):
        Polygon((18.5, -250), (18.5, -265), (33.5, -265), (33.5, -250), (28.5, -250), align=None)
        Polygon((28.5, -250), (33.5, -250), (33.5, 0), (28.5, 0), (28.5, -43.177819043), (20, -43.177819043), (20, -64.008919061), (28.5, -64.008919061), (28.5, -106.566098542), (20, -106.566098542), (20, -123.877493585), (28.5, -123.877493585), (28.5, -165.352710876), (20, -165.352710876), (20, -183.926395141), (28.5, -183.926395141), align=None)
        with Locations((24.25, -144.615102231)):
            Rectangle(SKETCH16_5_W, SKETCH16_5_H)
        with Locations((24.25, -85.287508801)):
            Rectangle(SKETCH16_5_W, SKETCH16_5_H_2)
        Polygon((28.5, -43.177819043), (28.5, 0), (18.5, 0), (18.5, -1), (20, -1), (20, -43.177819043), align=None)
        Polygon((28.5, 0), (33.5, 0), (33.5, 15), (18.5, 15), (18.5, 0), align=None)
        with Locations((19.25, -22.088909521)):
            Rectangle(SKETCH16_5_W_2, SKETCH16_5_H_3)
        with Locations((19.25, -53.593369052)):
            Rectangle(SKETCH16_5_W_2, SKETCH16_5_H_4)
        with Locations((19.25, -85.287508801)):
            Rectangle(SKETCH16_5_W_2, SKETCH16_5_H_2)
        with Locations((19.25, -115.221796064)):
            Rectangle(SKETCH16_5_W_2, SKETCH16_5_H_5)
        with Locations((19.25, -144.615102231)):
            Rectangle(SKETCH16_5_W_2, SKETCH16_5_H)
        with Locations((19.25, -174.639553009)):
            Rectangle(SKETCH16_5_W_2, SKETCH16_5_H_6)
        with Locations((19.25, -216.463197571)):
            Rectangle(SKETCH16_5_W_2, SKETCH16_5_H_7)
        Polygon((18.5, -249), (18.5, -250), (28.5, -250), (28.5, -183.926395141), (20, -183.926395141), (20, -249), align=None)
    extrude(amount=CUT_EXTRUDE6_DEPTH + CUT_EXTRUDE6_DEPTH_BACK, mode=Mode.SUBTRACT)

    # Sketch16<6> → Boss-Extrude15 (add)
    with BuildSketch(Plane(origin=(0, 15.353553391, 0), x_dir=(1, 0, 0), z_dir=(0, 1, 0))):
        Polygon((28.5, -250), (33.5, -250), (33.5, 0), (28.5, 0), (28.5, -43.177819043), (20, -43.177819043), (20, -64.008919061), (28.5, -64.008919061), (28.5, -106.566098542), (20, -106.566098542), (20, -123.877493585), (28.5, -123.877493585), (28.5, -165.352710876), (20, -165.352710876), (20, -183.926395141), (28.5, -183.926395141), align=None)
        Polygon((18.5, -249), (18.5, -250), (28.5, -250), (28.5, -183.926395141), (20, -183.926395141), (20, -249), align=None)
        Polygon((18.5, -250), (18.5, -265), (33.5, -265), (33.5, -250), (28.5, -250), align=None)
        with Locations((24.25, -144.615102231)):
            Rectangle(SKETCH16_6_W, SKETCH16_6_H)
        with Locations((24.25, -85.287508801)):
            Rectangle(SKETCH16_6_W, SKETCH16_6_H_2)
        Polygon((28.5, -43.177819043), (28.5, 0), (18.5, 0), (18.5, -1), (20, -1), (20, -43.177819043), align=None)
        Polygon((28.5, 0), (33.5, 0), (33.5, 15), (18.5, 15), (18.5, 0), align=None)
        with Locations((19.25, -22.088909521)):
            Rectangle(SKETCH16_6_W_2, SKETCH16_6_H_3)
        with Locations((19.25, -53.593369052)):
            Rectangle(SKETCH16_6_W_2, SKETCH16_6_H_4)
        with Locations((19.25, -85.287508801)):
            Rectangle(SKETCH16_6_W_2, SKETCH16_6_H_2)
        with Locations((19.25, -115.221796064)):
            Rectangle(SKETCH16_6_W_2, SKETCH16_6_H_5)
        with Locations((19.25, -144.615102231)):
            Rectangle(SKETCH16_6_W_2, SKETCH16_6_H)
        with Locations((19.25, -174.639553009)):
            Rectangle(SKETCH16_6_W_2, SKETCH16_6_H_6)
        with Locations((19.25, -216.463197571)):
            Rectangle(SKETCH16_6_W_2, SKETCH16_6_H_7)
    extrude(amount=-BOSS_EXTRUDE15_DEPTH)

    # Sketch16<7> → Boss-Extrude16 (add)
    with BuildSketch(Plane(origin=(0, 15.353553391, 0), x_dir=(1, 0, 0), z_dir=(0, 1, 0))):
        Polygon((18.5, -250), (18.5, -265), (33.5, -265), (33.5, -250), (28.5, -250), align=None)
        Polygon((28.5, 0), (33.5, 0), (33.5, 15), (18.5, 15), (18.5, 0), align=None)
    extrude(amount=BOSS_EXTRUDE16_DEPTH)

    # Sketch16<8> → Boss-Extrude17 (add)
    with BuildSketch(Plane(origin=(0, 15.353553391, 0), x_dir=(1, 0, 0), z_dir=(0, 1, 0))):
        Polygon((18.5, -249), (18.5, -250), (28.5, -250), (28.5, -183.926395141), (20, -183.926395141), (20, -249), align=None)
        with Locations((24.25, -144.615102231)):
            Rectangle(SKETCH16_8_W, SKETCH16_8_H)
        with Locations((24.25, -85.287508801)):
            Rectangle(SKETCH16_8_W, SKETCH16_8_H_2)
        Polygon((28.5, -43.177819043), (28.5, 0), (18.5, 0), (18.5, -1), (20, -1), (20, -43.177819043), align=None)
        with Locations((19.25, -22.088909521)):
            Rectangle(SKETCH16_8_W_2, SKETCH16_8_H_3)
        with Locations((19.25, -85.287508801)):
            Rectangle(SKETCH16_8_W_2, SKETCH16_8_H_2)
        with Locations((19.25, -144.615102231)):
            Rectangle(SKETCH16_8_W_2, SKETCH16_8_H)
        with Locations((19.25, -216.463197571)):
            Rectangle(SKETCH16_8_W_2, SKETCH16_8_H_4)
    extrude(amount=BOSS_EXTRUDE17_DEPTH)

    # Sketch14<2> → Boss-Extrude18 (add)
    with BuildSketch(Plane(origin=(0, 15.353553391, 0), x_dir=(1, 0, 0), z_dir=(0, 1, 0)).offset(BOSS_EXTRUDE18_START)):
        Polygon((-70, -265), (-170, -260.5), (-170, -265), align=None)
        Polygon((-170, 15), (-170, 10.5), (-70, 15), align=None)
    extrude(amount=BOSS_EXTRUDE18_DEPTH)

    # Fillet4
    fillet4_edges = [part_1.edges().sort_by_distance(p)[0] for p in [
        (31, 15.353553391, 0),
        (28.5, 15.353553391, 21.588909521),
        (28.5, 15.353553391, 85.287508801),
        (28.5, 15.353553391, 144.615102231),
        (31, 15.353553391, 250),
        (28.5, 15.353553391, 216.963197571),
    ]]
    fillet(fillet4_edges, radius=FILLET4_R - 0.0001)  # a hair under: the kernel refuses the full size

    # Sketch18 → Boss-Extrude21 (add)
    with BuildSketch(Plane(origin=(0, 35.353553391, 0), x_dir=(1, 0, 0), z_dir=(0, 1, 0)).offset(BOSS_EXTRUDE21_START)):
        with BuildLine():
            Line((-34.5, -250), (-34.5, -265))
            Line((-34.5, -265), (33.5, -265))
            Line((33.5, -265), (33.5, -250))
            Line((33.5, -250), (-23.5, -250))
            ThreePointArc((-23.5, -250), (-24.207106781, -249.707106781), (-24.5, -249))
            Line((-24.5, -249), (-24.5, -235))
            Line((-24.5, -235), (-34.5, -235))
            Line((-34.5, -235), (-34.5, -250))
        make_face()
        with BuildLine():
            Line((-34.5, 15), (-34.5, 0))
            Line((-34.5, 0), (-34.5, -15))
            Line((-34.5, -15), (-24.5, -15))
            Line((-24.5, -15), (-24.5, -1))
            ThreePointArc((-24.5, -1), (-24.207106781, -0.292893219), (-23.5, 0))
            Line((-23.5, 0), (33.5, 0))
            Line((33.5, 0), (33.5, 15))
            Line((33.5, 15), (-34.5, 15))
        make_face()
    extrude(amount=-BOSS_EXTRUDE21_DEPTH)

    # Sketch19 → Cut-Extrude7 (cut)
    with BuildSketch(Plane(origin=(0, 15.353553391, 0), x_dir=(1, 0, 0), z_dir=(0, 1, 0))):
        with Locations(Location((-154, -9.5, 0), (0, 0, 270))):
            Circle(SKETCH19_R)
        with Locations(Location((-104, -9.5, 0), (0, 0, 270))):
            Circle(SKETCH19_R)
        with Locations(Location((-104, -240.5, 0), (0, 0, 270))):
            Circle(SKETCH19_R)
        with Locations(Location((-154, -240.5, 0), (0, 0, 270))):
            Circle(SKETCH19_R)
    extrude(amount=-CUT_EXTRUDE7_DEPTH, mode=Mode.SUBTRACT)

    # Sketch20 → Cut-Extrude8 (cut, two sides: drawn at the far end of the back side and taken through both)
    with BuildSketch(Plane(origin=(0, 0, 256), x_dir=(-1, 0, 0), z_dir=(0, 0, -1)).offset(-CUT_EXTRUDE8_DEPTH_BACK)):
        with Locations(Location((104, 25.353553391, 0), (0, 0, 180))):
            Circle(SKETCH20_R)
        with Locations(Location((154, 25.353553391, 0), (0, 0, 180))):
            Circle(SKETCH20_R)
    extrude(amount=CUT_EXTRUDE8_DEPTH + CUT_EXTRUDE8_DEPTH_BACK, mode=Mode.SUBTRACT)

    # Sketch21 → Cut-Extrude9 (cut)
    with BuildSketch(Plane.XY):
        with Locations((6, 114.104067276)):
            Rectangle(SKETCH21_W, SKETCH21_H)
    extrude(amount=CUT_EXTRUDE9_DEPTH, mode=Mode.SUBTRACT)


with BuildPart() as cut_extrude11_tool:
    # Sketch22 → Cut-Extrude11 (new body)
    with BuildSketch(Plane(origin=(0, 0, 0), x_dir=(1, 0, 0), z_dir=(0, 1, 0))):
        Polygon((-126.5, 15), (-186.5, 15), (-186.5, -265), (-126.5, -265), (-126.5, -130), (-126.5, -120), align=None)
        with Locations((-46.5, -125)):
            Rectangle(SKETCH22_W, SKETCH22_H)
        with Locations((-46.5, -52.5)):
            Rectangle(SKETCH22_W, SKETCH22_H_2)
    extrude(amount=CUT_EXTRUDE11_DEPTH)


with BuildPart() as part_2:
    add(part_1.part)

    # Cut-Extrude11: cut by cut_extrude11_tool
    add(cut_extrude11_tool.part, mode=Mode.SUBTRACT)


with BuildPart() as lpattern1_1_1:
    add(lpattern1_1.part)

    # Cut-Extrude11: cut by cut_extrude11_tool
    add(cut_extrude11_tool.part, mode=Mode.SUBTRACT)


with BuildPart() as lpattern1_2_1:
    add(lpattern1_2.part)

    # Cut-Extrude11: cut by cut_extrude11_tool
    add(cut_extrude11_tool.part, mode=Mode.SUBTRACT)


with BuildPart() as lpattern1_4_1:
    add(lpattern1_4.part)

    # Cut-Extrude11: cut by cut_extrude11_tool
    add(cut_extrude11_tool.part, mode=Mode.SUBTRACT)


with BuildPart() as lpattern1_5_1:
    add(lpattern1_5.part)

    # Cut-Extrude11: cut by cut_extrude11_tool
    add(cut_extrude11_tool.part, mode=Mode.SUBTRACT)


solid = Compound([lpattern1_3.part, lpattern1_6.part, part_2.part, lpattern1_2_1.part, lpattern1_5_1.part])
